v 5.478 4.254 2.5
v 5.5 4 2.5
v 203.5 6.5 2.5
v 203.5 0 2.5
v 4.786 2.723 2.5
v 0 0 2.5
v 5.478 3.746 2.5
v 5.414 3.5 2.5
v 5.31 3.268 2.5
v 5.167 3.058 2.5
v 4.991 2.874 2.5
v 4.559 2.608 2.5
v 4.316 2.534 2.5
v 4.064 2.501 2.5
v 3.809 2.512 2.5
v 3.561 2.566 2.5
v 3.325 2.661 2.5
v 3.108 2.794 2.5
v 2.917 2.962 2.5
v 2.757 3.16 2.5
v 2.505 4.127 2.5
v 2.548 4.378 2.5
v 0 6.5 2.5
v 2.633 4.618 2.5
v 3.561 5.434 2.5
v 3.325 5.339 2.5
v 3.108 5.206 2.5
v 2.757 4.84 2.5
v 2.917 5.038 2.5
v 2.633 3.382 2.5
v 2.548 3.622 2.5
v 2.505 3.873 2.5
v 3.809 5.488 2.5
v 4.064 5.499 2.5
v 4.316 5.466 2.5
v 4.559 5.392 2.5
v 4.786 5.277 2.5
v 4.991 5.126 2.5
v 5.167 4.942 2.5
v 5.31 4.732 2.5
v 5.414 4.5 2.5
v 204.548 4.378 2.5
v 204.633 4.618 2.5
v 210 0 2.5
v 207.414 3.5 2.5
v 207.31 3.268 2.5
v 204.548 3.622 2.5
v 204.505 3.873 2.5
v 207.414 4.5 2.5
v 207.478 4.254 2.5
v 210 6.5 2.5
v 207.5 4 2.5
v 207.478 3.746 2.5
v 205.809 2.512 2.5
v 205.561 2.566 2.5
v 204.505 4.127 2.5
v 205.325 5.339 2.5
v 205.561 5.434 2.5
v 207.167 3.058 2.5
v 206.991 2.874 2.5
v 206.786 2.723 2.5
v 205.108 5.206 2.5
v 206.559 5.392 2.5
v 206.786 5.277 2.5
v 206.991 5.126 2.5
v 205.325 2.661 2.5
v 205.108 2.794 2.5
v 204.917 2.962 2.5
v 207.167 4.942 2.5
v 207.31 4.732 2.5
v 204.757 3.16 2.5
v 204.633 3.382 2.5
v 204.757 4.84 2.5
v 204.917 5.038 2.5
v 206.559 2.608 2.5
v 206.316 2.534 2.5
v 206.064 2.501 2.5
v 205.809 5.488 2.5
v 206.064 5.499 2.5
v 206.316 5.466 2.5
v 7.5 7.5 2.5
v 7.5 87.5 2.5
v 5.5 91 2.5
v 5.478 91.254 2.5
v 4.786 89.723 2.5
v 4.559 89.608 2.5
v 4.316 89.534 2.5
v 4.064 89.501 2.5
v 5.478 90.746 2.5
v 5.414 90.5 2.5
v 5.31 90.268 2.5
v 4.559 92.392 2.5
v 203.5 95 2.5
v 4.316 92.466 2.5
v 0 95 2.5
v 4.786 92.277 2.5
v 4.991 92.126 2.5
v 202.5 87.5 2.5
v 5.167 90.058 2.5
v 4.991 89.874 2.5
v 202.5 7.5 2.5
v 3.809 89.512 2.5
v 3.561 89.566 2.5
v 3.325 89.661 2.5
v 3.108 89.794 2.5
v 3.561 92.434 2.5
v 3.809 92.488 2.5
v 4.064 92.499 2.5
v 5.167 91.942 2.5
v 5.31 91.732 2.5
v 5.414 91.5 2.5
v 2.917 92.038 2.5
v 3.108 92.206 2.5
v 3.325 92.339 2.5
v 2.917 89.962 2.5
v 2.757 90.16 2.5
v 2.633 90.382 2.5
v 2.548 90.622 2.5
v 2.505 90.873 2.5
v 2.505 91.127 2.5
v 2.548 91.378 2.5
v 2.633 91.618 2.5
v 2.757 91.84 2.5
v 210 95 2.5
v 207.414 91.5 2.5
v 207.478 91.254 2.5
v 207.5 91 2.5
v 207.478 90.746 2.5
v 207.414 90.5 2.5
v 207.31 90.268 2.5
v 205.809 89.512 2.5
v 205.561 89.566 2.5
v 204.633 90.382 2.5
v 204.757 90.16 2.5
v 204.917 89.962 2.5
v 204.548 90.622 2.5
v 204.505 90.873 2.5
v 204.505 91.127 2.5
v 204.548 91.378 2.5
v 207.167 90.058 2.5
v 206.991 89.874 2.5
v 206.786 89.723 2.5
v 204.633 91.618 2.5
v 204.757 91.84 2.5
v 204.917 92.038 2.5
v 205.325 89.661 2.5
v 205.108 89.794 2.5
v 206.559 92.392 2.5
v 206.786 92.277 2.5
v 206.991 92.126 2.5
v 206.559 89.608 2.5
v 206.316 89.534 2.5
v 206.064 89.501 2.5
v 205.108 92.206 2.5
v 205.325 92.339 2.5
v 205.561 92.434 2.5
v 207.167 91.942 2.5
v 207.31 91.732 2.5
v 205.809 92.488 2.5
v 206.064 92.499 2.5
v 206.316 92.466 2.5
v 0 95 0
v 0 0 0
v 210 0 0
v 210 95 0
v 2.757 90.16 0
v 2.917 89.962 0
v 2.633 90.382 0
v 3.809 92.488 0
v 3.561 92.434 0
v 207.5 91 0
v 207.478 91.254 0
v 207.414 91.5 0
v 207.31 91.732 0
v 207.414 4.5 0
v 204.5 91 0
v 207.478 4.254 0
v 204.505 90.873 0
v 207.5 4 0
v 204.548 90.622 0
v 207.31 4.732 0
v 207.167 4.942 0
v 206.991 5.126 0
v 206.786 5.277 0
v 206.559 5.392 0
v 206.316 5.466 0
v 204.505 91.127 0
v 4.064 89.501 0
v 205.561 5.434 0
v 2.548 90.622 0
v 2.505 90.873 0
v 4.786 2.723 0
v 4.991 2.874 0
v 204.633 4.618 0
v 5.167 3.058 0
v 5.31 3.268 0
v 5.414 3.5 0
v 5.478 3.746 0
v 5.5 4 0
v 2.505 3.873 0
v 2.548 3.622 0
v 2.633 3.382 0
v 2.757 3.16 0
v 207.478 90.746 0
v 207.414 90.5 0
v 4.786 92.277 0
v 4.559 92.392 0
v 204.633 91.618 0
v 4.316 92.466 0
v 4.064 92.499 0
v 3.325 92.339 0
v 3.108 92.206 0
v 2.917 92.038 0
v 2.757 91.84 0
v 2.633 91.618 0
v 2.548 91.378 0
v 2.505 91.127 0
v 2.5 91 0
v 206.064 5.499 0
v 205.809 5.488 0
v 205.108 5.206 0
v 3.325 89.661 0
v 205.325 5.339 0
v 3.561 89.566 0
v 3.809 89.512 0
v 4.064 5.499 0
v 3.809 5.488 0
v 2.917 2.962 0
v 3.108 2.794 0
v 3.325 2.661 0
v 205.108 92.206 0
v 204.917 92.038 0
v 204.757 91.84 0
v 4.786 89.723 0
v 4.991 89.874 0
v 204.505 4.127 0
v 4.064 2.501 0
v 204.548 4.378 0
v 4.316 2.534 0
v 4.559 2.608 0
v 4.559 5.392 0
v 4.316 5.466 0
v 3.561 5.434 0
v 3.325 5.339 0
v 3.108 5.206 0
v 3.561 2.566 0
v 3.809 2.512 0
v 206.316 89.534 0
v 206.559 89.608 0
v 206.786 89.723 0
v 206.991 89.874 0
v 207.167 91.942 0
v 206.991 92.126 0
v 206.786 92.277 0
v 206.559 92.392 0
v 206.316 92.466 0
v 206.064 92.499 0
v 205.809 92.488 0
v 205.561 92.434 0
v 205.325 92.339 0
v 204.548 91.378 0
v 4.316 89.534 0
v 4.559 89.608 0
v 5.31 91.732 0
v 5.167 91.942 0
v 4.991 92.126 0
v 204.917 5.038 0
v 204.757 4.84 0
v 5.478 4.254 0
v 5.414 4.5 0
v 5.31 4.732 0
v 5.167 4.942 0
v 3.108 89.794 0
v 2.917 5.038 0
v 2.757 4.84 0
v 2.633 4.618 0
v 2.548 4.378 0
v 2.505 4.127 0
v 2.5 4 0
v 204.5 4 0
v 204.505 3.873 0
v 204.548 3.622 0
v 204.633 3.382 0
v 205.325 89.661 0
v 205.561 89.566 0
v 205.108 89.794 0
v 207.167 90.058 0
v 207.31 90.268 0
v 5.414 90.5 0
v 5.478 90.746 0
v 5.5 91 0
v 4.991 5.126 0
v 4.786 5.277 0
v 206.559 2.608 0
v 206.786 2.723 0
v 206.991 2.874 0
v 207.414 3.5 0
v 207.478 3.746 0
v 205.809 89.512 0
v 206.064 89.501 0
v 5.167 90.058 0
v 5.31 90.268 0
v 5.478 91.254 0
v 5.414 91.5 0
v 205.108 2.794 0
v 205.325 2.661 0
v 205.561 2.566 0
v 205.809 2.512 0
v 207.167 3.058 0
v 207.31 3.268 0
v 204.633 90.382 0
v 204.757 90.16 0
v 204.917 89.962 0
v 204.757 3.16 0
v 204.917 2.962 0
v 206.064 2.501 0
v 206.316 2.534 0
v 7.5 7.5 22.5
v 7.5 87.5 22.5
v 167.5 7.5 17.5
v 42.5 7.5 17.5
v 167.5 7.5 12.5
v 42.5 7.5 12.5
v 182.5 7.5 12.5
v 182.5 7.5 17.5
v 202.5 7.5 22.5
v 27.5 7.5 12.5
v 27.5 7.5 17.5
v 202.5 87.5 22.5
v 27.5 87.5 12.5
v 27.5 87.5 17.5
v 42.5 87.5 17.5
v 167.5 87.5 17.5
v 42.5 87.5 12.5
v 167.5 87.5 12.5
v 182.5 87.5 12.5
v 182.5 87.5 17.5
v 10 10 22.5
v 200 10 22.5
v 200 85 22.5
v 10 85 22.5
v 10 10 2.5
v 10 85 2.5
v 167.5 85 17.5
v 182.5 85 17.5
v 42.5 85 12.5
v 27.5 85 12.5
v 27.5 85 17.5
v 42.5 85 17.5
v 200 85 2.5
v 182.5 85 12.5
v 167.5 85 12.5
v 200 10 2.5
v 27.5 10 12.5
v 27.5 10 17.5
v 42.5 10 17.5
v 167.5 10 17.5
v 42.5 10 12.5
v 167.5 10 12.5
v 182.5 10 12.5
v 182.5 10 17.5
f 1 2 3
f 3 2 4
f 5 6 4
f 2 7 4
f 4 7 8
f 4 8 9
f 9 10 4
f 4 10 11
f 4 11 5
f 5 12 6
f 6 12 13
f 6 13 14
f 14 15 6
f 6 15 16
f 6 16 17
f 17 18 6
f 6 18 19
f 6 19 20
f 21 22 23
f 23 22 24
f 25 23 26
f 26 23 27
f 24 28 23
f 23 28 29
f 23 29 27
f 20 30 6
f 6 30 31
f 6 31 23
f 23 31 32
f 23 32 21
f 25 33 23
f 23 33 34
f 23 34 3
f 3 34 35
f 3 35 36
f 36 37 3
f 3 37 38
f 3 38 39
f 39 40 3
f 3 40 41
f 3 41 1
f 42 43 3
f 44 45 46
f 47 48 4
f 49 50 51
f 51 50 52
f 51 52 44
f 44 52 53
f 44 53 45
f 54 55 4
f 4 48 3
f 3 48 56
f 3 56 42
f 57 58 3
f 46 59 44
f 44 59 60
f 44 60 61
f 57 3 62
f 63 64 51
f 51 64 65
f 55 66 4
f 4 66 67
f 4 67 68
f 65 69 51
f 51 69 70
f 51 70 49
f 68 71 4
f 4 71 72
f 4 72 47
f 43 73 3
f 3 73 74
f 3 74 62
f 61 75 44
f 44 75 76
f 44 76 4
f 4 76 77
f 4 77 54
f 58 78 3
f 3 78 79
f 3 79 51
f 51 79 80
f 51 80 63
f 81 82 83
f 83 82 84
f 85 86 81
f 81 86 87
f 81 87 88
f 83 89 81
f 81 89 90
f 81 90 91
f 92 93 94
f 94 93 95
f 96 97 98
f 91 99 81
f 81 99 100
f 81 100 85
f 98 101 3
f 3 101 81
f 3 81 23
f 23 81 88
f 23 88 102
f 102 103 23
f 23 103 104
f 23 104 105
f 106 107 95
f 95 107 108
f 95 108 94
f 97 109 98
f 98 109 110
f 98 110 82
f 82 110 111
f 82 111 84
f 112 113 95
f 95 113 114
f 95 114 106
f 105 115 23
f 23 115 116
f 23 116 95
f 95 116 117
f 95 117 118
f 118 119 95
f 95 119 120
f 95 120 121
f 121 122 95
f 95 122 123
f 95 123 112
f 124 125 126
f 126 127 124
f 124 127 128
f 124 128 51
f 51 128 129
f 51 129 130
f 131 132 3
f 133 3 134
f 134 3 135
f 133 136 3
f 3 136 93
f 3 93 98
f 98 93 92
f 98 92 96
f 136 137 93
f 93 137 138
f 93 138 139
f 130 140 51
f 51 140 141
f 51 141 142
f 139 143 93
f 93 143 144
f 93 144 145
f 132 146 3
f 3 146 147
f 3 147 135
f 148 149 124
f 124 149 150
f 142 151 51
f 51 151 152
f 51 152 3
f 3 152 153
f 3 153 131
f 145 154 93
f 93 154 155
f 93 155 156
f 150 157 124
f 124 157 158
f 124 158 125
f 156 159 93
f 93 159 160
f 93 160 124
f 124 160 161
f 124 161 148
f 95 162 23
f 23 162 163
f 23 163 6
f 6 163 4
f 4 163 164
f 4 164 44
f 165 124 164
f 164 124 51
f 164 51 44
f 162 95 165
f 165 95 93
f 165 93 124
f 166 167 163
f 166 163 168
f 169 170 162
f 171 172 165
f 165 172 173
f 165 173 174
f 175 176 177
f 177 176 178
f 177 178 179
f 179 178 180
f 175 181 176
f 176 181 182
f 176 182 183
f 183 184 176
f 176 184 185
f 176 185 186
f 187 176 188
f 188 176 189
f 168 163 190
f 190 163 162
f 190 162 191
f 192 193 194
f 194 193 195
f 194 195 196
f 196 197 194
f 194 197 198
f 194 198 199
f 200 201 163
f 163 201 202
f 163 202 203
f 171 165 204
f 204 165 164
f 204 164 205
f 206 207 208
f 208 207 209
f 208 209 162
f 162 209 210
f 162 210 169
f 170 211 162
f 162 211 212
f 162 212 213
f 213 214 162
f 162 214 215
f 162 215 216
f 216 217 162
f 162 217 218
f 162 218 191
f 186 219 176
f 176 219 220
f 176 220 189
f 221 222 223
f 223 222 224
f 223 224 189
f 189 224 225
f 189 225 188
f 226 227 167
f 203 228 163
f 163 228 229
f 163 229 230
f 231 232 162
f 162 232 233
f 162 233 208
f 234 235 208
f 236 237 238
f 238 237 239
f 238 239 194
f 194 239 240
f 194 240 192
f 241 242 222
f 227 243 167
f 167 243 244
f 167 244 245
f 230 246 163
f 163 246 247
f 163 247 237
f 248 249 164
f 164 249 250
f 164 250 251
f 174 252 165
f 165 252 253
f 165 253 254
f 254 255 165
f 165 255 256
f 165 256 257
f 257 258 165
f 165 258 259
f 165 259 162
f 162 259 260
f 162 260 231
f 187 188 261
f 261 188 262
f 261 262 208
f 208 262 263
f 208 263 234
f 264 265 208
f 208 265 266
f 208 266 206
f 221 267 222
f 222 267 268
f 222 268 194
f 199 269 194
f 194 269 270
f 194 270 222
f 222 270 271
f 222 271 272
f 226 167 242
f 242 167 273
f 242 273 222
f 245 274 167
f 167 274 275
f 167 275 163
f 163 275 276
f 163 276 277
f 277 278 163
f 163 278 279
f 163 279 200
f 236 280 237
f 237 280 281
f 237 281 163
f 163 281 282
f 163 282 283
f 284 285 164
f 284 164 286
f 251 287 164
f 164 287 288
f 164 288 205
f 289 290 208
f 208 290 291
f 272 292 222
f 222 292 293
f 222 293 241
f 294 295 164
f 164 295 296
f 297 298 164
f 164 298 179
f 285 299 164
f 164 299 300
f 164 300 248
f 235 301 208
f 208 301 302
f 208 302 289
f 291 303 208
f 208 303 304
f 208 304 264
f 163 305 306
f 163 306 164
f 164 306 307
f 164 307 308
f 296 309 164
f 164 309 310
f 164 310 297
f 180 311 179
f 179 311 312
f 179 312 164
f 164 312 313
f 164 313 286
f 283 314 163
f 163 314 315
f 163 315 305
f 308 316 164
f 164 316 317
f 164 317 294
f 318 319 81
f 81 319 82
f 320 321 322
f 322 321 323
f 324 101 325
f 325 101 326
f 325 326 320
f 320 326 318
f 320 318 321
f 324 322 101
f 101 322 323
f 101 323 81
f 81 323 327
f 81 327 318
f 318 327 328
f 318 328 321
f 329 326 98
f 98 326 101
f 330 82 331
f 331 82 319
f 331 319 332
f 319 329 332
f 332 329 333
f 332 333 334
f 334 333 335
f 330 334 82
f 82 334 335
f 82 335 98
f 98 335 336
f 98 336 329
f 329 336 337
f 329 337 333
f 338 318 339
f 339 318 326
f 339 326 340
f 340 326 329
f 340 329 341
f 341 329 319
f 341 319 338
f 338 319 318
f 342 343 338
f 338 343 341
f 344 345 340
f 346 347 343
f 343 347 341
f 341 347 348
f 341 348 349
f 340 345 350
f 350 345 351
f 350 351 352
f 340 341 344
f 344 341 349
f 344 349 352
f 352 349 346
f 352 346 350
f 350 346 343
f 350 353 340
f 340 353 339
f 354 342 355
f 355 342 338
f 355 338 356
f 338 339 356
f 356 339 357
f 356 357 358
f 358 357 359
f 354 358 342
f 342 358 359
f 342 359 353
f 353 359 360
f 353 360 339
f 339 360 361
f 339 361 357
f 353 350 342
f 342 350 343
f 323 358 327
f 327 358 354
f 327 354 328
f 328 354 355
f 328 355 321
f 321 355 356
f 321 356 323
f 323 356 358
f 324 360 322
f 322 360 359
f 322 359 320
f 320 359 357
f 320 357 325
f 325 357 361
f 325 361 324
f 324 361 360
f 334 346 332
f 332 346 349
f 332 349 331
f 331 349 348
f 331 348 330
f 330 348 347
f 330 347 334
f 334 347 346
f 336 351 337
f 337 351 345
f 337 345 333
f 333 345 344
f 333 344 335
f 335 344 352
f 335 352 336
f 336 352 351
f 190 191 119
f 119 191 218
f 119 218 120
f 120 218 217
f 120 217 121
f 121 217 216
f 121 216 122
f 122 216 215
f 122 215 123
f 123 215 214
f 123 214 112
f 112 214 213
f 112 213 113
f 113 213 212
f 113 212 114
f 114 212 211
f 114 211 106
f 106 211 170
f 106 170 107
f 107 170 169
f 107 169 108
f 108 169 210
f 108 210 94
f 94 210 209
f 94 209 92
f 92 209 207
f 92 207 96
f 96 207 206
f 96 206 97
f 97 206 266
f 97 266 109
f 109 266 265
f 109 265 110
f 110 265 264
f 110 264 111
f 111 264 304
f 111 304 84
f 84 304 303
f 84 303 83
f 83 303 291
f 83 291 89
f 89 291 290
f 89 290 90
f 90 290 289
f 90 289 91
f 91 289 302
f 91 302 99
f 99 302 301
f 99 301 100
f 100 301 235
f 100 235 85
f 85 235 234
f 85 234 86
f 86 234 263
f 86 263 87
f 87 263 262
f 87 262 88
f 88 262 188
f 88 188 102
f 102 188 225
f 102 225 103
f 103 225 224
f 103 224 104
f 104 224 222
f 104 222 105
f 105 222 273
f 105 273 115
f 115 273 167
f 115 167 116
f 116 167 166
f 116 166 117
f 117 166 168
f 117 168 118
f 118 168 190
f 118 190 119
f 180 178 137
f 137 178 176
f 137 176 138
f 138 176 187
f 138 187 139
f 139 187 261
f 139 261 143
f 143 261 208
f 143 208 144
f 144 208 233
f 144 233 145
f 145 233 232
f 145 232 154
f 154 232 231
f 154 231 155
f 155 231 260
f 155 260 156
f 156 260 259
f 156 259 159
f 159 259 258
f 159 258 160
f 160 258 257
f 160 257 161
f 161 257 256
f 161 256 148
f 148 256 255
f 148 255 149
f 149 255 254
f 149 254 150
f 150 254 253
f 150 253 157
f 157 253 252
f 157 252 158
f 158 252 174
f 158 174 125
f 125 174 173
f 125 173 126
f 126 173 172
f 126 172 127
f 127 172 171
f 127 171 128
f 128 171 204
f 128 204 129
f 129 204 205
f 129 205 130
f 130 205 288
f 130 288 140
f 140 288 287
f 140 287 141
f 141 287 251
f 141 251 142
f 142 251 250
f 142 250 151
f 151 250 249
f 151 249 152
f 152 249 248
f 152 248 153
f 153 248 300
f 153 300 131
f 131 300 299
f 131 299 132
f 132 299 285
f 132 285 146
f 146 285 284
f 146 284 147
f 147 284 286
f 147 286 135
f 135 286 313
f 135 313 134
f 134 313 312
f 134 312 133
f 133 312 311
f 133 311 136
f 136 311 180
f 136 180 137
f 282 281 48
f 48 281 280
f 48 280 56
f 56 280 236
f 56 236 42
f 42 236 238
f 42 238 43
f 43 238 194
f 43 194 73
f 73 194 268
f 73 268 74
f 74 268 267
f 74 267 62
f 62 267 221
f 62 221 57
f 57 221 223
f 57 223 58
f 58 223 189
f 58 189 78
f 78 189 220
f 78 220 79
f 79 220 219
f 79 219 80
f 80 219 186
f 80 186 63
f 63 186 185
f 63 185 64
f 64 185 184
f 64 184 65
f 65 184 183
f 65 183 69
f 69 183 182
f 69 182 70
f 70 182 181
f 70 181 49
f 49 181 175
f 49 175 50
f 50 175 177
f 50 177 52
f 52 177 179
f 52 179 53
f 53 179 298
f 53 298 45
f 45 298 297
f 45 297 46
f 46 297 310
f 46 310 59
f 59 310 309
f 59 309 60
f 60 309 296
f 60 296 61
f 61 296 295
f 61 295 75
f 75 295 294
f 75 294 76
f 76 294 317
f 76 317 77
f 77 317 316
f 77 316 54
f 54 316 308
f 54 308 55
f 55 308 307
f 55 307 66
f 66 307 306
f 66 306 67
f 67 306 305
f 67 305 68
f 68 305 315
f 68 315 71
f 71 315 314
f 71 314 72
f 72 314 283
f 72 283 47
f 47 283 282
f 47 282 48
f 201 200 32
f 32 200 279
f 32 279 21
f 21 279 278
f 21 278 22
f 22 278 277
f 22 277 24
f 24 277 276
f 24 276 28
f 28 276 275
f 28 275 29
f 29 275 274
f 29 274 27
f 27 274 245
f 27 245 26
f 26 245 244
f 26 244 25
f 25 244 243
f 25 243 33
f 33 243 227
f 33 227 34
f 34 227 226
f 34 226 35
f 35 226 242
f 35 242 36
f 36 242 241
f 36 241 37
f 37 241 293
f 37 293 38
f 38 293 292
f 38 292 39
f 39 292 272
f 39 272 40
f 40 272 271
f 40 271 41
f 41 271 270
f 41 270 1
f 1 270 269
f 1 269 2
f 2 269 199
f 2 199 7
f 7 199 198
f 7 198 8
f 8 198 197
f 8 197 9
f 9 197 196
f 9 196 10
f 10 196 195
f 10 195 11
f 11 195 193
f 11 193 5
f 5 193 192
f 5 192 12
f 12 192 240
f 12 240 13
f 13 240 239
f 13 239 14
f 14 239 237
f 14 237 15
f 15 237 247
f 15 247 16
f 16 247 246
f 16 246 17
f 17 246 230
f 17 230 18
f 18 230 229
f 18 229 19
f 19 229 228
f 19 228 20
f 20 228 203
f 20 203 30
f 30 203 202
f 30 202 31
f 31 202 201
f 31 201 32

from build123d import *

# Parameters (mm, degrees)
SKETCH1_W           = 210
SKETCH1_H           = 95
BOSS_EXTRUDE1_DEPTH = 2.5
SKETCH2_W           = 195
SKETCH2_H           = 80
BOSS_EXTRUDE2_DEPTH = 20
SKETCH3_W           = 190
SKETCH3_H           = 75
CUT_EXTRUDE1_DEPTH  = 20
SKETCH5_W           = 15
SKETCH5_H           = 5
CUT_EXTRUDE3_DEPTH  = 80
SKETCH6_R           = 1.5
CUT_EXTRUDE4_DEPTH  = 2.5


with BuildPart() as part:
    # Sketch1 → Boss-Extrude1 (new body)
    with BuildSketch(Plane.XY):
        with Locations((105, 47.5)):
            Rectangle(SKETCH1_W, SKETCH1_H)
    extrude(amount=BOSS_EXTRUDE1_DEPTH)

    # Sketch2 → Boss-Extrude2 (add)
    with BuildSketch(Plane.XY.offset(2.5)):
        with Locations((105, 47.5)):
            Rectangle(SKETCH2_W, SKETCH2_H)
    extrude(amount=BOSS_EXTRUDE2_DEPTH)

    # Sketch3 → Cut-Extrude1 (cut)
    with BuildSketch(Plane.XY.offset(22.5)):
        with Locations((105, 47.5)):
            Rectangle(SKETCH3_W, SKETCH3_H)
    extrude(amount=-CUT_EXTRUDE1_DEPTH, mode=Mode.SUBTRACT)

    # Sketch5 → Cut-Extrude3 (cut)
    with BuildSketch(Plane(origin=(0, 87.5, 0), x_dir=(1, 0, 0), z_dir=(0, 1, 0))):
        with Locations((175, -15)):
            Rectangle(SKETCH5_W, SKETCH5_H)
        with Locations((35, -15)):
            Rectangle(SKETCH5_W, SKETCH5_H)
    extrude(amount=-CUT_EXTRUDE3_DEPTH, mode=Mode.SUBTRACT)

    # Sketch6 → Cut-Extrude4 (cut)
    with BuildSketch(Plane.XY.offset(2.5)):
        with Locations((4, 91)):
            Circle(SKETCH6_R)
        with Locations((206, 91)):
            Circle(SKETCH6_R)
        with Locations((206, 4)):
            Circle(SKETCH6_R)
        with Locations((4, 4)):
            Circle(SKETCH6_R)
    extrude(amount=-CUT_EXTRUDE4_DEPTH, mode=Mode.SUBTRACT)


solid = part.part
